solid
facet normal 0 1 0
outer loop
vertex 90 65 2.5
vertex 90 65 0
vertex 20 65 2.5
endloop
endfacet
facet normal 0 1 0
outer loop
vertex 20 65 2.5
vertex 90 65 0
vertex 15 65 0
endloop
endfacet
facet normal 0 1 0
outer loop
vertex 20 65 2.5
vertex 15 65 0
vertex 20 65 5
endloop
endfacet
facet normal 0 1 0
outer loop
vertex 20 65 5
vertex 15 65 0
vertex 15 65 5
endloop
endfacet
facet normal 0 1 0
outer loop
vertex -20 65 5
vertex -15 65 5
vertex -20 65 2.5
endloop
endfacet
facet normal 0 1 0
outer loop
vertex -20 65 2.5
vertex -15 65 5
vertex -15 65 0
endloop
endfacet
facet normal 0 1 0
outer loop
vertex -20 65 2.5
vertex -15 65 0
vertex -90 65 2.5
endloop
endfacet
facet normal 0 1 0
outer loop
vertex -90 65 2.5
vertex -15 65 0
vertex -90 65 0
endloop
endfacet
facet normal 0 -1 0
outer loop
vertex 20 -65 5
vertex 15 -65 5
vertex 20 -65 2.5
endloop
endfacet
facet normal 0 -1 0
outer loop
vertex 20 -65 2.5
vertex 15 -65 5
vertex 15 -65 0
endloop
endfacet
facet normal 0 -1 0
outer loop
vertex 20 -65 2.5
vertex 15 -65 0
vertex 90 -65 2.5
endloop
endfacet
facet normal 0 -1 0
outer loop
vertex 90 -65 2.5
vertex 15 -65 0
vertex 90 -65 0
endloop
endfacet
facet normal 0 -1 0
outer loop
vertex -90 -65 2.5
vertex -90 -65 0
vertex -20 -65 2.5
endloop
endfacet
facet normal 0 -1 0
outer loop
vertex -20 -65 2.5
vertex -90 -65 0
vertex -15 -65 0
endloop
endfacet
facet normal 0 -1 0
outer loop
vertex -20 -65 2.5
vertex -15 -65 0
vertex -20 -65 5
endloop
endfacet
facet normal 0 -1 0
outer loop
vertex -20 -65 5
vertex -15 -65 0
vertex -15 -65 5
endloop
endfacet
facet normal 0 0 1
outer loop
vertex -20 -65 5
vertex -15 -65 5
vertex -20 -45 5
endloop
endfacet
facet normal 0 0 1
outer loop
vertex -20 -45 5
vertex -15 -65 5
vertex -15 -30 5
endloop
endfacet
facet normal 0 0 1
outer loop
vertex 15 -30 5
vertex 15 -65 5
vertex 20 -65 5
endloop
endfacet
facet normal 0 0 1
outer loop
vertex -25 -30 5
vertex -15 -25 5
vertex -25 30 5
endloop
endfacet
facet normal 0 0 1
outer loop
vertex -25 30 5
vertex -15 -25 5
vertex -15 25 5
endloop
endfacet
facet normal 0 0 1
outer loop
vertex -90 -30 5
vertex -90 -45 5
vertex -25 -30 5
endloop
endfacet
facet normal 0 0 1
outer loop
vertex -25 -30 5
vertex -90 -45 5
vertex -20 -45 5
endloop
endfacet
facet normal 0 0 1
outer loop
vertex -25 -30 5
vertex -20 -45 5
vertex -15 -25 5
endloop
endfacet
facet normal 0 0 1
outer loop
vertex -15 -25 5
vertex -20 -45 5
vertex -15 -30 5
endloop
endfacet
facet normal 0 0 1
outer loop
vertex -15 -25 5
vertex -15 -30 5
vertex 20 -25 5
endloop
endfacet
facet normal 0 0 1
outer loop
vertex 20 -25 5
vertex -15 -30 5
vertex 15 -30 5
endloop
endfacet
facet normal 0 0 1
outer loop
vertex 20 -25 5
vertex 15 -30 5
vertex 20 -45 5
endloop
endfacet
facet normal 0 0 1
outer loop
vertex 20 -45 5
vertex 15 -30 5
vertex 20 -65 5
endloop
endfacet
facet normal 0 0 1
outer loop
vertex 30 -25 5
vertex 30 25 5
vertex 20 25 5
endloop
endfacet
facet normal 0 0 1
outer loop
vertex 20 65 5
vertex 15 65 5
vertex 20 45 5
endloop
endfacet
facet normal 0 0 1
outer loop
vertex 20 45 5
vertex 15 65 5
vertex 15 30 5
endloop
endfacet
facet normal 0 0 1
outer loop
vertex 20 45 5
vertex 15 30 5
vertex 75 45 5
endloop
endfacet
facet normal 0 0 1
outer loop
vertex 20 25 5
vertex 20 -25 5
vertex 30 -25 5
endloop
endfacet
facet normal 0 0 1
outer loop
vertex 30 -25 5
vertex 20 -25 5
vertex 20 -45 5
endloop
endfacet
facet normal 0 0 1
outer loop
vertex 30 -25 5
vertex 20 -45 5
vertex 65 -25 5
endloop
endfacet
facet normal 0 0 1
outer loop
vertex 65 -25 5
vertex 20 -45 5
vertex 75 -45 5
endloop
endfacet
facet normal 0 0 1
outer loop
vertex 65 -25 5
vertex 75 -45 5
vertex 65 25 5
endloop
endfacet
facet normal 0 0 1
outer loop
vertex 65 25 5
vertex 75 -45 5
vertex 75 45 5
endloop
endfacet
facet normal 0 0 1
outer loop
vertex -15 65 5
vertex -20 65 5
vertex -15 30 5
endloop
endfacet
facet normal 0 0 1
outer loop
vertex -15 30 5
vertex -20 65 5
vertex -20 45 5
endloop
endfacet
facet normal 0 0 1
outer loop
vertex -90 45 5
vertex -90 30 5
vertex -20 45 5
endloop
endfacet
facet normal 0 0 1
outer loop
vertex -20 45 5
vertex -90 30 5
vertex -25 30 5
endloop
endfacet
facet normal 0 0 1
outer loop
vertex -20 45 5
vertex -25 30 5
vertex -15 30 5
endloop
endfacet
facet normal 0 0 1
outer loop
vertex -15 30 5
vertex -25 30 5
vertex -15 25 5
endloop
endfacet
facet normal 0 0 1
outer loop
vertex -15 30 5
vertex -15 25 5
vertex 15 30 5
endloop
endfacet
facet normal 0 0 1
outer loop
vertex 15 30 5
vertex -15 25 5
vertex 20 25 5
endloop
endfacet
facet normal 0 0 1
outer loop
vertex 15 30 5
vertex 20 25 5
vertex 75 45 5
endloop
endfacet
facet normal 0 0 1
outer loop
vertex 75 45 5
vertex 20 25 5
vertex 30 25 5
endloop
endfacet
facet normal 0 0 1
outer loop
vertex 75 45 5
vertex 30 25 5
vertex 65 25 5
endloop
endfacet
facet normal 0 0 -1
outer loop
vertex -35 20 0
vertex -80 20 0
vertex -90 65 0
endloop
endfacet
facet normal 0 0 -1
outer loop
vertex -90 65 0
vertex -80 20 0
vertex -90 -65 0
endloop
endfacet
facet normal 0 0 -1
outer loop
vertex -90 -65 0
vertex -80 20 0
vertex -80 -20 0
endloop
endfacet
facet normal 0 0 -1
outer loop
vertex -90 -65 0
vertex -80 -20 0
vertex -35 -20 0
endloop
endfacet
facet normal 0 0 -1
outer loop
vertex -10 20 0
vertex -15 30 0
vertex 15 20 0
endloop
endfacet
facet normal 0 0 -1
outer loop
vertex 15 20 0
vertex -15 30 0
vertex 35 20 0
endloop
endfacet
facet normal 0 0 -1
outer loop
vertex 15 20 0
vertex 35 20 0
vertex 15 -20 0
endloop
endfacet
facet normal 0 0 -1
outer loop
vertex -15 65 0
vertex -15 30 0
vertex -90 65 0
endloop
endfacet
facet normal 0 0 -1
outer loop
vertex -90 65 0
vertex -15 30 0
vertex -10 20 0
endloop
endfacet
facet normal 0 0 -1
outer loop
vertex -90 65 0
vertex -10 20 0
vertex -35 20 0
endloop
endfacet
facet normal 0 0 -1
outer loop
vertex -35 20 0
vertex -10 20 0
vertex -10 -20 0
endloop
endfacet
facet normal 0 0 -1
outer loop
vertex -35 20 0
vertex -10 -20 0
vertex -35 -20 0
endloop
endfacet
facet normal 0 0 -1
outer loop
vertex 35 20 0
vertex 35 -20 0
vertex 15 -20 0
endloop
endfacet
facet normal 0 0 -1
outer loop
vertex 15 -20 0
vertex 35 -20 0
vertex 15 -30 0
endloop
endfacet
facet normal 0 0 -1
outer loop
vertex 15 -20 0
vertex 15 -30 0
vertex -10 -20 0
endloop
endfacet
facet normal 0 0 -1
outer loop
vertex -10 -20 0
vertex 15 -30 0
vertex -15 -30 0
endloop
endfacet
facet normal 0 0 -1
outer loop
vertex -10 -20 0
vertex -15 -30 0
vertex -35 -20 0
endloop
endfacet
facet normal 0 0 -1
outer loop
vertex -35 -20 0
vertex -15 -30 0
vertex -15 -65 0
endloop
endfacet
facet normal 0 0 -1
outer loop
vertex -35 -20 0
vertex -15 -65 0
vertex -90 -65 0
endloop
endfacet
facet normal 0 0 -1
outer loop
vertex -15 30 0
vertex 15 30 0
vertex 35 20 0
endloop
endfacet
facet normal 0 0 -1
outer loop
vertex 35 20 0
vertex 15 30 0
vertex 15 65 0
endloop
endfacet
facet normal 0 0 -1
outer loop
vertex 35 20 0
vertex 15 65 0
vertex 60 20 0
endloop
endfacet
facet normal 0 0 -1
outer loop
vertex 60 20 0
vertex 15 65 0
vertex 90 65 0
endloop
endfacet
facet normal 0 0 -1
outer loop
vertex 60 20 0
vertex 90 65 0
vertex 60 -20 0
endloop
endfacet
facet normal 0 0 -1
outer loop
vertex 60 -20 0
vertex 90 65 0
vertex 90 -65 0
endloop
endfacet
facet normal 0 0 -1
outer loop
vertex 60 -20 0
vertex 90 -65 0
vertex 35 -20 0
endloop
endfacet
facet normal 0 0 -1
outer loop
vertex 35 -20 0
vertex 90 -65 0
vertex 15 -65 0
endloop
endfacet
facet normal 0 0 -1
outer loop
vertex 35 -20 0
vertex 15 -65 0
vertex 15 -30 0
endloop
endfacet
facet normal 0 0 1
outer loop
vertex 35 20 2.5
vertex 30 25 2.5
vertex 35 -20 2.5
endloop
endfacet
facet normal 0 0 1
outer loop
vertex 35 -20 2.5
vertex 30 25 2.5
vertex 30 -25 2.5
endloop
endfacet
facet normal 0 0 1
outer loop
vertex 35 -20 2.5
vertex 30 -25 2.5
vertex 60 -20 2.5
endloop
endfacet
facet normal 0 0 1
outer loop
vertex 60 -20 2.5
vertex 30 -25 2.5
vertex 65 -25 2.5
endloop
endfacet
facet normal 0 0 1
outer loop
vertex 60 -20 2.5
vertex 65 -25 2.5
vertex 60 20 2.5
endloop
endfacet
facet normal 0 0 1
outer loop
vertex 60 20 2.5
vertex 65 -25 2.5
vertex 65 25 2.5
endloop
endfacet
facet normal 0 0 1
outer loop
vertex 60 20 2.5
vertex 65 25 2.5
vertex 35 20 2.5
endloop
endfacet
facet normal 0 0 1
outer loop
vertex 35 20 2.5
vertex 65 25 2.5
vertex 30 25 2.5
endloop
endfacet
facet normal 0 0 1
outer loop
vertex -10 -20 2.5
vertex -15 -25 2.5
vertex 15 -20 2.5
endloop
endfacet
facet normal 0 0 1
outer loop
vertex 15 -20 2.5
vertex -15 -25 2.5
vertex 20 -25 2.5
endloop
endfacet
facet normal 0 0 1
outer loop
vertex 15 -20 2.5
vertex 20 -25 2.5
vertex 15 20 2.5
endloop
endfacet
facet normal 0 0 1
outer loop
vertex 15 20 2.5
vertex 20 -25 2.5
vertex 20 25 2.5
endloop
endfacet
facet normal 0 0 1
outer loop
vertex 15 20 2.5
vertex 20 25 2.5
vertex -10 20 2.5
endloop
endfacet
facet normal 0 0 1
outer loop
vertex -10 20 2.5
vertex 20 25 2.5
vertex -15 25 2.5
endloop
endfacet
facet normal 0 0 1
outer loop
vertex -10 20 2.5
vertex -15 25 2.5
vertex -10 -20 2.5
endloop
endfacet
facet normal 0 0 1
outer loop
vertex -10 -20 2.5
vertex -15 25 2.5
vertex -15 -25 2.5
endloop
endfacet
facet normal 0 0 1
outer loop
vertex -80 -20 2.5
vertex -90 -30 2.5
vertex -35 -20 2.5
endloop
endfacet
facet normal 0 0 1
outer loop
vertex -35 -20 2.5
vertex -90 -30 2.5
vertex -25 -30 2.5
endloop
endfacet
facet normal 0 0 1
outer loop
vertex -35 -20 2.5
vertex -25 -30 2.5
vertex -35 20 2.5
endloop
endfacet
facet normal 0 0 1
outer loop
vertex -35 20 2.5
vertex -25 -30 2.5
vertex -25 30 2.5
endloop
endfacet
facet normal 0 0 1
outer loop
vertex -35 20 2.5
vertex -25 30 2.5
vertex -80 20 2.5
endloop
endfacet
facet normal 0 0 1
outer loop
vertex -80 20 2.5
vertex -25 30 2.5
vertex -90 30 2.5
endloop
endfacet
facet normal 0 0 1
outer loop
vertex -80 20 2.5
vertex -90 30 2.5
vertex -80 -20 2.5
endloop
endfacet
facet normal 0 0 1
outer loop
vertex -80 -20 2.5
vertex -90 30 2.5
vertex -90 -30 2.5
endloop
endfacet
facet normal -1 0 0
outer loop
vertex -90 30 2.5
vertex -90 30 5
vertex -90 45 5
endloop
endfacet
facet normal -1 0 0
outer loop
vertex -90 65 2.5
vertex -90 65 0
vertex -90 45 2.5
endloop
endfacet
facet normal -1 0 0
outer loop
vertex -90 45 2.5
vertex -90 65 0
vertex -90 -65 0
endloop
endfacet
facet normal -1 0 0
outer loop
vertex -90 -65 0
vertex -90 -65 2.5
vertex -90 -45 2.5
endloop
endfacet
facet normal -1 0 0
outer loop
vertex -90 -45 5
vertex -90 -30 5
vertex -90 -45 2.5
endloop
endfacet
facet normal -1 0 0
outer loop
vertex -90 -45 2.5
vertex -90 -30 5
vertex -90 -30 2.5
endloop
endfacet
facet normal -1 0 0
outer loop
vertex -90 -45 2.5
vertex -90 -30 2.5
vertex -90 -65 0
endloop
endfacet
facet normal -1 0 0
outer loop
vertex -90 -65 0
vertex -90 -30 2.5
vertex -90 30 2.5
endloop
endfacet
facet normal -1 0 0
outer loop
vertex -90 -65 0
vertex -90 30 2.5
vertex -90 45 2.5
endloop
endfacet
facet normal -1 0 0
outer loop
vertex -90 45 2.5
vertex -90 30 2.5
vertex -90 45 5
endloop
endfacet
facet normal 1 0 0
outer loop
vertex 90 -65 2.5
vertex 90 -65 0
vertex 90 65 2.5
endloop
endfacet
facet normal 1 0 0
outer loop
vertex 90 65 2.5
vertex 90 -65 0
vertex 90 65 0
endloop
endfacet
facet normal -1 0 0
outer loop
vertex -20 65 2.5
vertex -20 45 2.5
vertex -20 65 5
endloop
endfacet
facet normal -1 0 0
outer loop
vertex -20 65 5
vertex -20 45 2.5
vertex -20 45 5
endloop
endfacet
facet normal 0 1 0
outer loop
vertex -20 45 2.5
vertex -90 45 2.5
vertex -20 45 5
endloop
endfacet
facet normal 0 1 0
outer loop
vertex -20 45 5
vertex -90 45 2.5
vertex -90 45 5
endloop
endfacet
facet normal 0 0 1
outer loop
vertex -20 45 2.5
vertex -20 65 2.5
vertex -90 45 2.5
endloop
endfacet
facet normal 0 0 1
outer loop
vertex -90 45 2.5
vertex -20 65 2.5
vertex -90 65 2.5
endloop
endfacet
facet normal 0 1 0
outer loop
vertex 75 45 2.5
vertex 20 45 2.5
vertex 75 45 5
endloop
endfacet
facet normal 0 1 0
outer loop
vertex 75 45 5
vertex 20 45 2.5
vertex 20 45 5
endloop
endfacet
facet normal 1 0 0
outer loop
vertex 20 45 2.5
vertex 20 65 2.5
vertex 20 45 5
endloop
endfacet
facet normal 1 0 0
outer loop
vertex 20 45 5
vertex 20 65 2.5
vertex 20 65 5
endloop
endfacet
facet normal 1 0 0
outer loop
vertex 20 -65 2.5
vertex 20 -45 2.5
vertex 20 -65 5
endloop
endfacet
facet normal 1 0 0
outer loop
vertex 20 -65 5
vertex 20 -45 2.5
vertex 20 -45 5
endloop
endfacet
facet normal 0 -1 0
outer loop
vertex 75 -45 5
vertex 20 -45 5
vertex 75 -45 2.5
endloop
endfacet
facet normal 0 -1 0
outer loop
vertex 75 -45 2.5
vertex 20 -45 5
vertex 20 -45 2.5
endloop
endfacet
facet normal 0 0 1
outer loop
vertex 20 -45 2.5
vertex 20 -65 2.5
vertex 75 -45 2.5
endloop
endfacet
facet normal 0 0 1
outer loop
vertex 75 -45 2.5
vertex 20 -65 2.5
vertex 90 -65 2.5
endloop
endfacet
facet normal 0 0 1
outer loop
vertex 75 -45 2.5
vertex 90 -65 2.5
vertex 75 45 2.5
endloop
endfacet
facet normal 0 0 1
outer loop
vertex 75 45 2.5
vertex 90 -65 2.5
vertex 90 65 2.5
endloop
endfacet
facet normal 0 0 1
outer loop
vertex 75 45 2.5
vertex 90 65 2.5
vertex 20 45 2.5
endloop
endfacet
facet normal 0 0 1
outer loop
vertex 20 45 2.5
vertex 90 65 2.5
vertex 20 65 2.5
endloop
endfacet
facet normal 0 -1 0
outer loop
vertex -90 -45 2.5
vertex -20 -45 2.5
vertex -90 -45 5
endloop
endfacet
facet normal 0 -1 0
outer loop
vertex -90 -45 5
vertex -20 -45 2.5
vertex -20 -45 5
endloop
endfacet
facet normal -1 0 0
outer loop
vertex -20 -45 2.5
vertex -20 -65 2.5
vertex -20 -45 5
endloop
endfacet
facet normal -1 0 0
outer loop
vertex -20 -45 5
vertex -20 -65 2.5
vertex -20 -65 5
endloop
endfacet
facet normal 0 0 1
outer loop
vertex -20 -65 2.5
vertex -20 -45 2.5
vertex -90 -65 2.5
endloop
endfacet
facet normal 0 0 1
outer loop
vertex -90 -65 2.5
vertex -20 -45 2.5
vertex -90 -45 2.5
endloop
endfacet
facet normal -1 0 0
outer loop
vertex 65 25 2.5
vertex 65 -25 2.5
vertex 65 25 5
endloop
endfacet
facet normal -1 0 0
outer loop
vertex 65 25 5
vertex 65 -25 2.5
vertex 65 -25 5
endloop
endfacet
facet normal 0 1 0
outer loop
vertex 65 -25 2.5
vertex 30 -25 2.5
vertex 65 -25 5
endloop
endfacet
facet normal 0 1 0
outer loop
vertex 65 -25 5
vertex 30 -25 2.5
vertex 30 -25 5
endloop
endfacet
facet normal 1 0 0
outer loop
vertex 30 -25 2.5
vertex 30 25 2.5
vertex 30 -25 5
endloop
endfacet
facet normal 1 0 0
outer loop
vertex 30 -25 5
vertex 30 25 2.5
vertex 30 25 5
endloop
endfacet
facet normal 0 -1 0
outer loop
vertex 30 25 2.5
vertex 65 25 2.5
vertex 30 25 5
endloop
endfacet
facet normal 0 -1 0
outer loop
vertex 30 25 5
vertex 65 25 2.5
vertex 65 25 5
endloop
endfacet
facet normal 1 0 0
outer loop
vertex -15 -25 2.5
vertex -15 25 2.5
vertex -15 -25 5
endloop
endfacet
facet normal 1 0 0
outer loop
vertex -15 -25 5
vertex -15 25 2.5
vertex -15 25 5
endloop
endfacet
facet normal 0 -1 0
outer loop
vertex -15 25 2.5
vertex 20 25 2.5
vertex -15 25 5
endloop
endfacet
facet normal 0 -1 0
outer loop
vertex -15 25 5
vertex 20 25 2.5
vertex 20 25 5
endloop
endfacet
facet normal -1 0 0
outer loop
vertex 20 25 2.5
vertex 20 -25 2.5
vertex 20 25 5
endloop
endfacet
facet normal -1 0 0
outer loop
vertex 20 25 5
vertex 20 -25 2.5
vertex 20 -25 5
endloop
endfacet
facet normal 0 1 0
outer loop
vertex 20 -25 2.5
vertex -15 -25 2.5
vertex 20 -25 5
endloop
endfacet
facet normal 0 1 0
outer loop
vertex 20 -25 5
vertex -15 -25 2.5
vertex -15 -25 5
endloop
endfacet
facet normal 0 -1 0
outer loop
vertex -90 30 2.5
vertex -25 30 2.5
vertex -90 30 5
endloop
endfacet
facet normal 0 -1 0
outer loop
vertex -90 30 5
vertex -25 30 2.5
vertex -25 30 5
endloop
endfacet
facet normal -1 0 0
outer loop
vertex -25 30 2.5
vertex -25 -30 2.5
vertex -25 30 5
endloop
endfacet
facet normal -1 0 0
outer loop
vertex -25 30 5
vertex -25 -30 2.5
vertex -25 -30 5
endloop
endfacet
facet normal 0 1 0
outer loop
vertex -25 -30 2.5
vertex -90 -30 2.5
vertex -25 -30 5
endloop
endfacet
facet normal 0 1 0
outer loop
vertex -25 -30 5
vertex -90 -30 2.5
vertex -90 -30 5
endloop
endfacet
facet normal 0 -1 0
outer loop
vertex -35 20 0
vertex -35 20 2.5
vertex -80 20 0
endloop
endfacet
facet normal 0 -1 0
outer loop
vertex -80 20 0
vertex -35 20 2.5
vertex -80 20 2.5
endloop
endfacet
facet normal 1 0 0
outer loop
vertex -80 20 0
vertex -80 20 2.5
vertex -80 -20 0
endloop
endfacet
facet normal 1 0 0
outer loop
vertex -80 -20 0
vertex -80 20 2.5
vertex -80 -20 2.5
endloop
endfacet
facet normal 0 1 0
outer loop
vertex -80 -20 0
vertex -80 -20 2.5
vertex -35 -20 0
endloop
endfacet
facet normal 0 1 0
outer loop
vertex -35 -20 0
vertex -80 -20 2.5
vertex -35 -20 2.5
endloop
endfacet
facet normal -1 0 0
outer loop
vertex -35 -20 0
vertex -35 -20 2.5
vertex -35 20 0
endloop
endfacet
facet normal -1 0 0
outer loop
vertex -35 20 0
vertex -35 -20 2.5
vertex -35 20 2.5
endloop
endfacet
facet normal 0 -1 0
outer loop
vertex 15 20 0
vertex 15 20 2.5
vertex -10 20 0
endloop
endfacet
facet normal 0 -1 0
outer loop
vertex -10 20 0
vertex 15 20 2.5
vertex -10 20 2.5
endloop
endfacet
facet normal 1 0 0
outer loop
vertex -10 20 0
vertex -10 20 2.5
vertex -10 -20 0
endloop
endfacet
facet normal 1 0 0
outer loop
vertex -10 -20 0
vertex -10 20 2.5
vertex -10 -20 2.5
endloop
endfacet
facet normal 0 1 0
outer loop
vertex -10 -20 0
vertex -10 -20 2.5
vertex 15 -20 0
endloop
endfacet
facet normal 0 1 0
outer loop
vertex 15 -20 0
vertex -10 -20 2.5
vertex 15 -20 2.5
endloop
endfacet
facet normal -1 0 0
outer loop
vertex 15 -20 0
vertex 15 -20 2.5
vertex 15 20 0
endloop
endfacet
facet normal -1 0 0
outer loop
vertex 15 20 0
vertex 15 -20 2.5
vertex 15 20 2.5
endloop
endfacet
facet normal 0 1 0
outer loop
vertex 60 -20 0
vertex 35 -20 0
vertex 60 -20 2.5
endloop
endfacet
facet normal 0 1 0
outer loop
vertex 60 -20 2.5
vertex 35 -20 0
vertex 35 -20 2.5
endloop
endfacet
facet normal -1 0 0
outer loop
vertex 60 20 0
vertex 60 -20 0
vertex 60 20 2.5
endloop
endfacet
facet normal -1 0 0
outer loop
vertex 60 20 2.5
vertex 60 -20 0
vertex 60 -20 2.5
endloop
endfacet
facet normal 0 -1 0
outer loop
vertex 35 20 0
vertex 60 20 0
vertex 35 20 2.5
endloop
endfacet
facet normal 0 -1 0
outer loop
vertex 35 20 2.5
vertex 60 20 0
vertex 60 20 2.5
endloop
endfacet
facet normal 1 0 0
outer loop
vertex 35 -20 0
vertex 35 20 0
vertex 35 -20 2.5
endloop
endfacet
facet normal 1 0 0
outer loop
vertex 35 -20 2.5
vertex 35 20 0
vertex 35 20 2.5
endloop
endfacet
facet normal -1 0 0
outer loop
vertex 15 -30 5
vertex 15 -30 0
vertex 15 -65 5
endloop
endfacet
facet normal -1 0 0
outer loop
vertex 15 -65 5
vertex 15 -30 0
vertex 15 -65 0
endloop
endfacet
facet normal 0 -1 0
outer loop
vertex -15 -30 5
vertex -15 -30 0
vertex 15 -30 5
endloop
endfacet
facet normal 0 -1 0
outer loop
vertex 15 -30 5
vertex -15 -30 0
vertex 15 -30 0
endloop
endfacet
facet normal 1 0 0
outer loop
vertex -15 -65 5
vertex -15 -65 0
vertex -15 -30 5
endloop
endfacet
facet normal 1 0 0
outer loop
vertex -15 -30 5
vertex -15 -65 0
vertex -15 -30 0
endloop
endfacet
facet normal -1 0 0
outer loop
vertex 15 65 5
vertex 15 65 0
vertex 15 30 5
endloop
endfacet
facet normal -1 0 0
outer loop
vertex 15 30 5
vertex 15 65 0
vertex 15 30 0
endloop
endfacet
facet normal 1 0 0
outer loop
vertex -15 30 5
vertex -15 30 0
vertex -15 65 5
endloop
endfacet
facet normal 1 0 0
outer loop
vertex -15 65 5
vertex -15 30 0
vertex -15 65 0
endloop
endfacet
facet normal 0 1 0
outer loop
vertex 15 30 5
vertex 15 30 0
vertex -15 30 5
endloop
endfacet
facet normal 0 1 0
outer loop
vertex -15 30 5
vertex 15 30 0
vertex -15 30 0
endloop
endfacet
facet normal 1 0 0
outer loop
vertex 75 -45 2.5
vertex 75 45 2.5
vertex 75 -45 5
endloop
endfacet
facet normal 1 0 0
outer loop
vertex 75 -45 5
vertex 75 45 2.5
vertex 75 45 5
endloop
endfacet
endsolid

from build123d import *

# Parameters (mm, degrees)
SKETCH1_W               = 180
SKETCH1_H               = 130
BOSS_EXTRUDE1_DEPTH     = 5
SKETCH2_W               = 70
SKETCH2_H               = 20
CUT_EXTRUDE1_DEPTH      = 2.5
SKETCH3_W               = 65
SKETCH3_H               = 60
SKETCH3_W_2             = 35
SKETCH3_H_2             = 50
CUT_EXTRUDE2_DEPTH      = 2.5
SKETCH4_W               = 30
SKETCH4_H               = 35
SKETCH4_W_2             = 45
SKETCH4_H_2             = 40
SKETCH4_W_3             = 25
CUT_EXTRUDE3_DEPTH      = 2.5
CUT_EXTRUDE3_DEPTH_BACK = 3.5
SKETCH5_W               = 15
SKETCH5_H               = 90
CUT_EXTRUDE4_DEPTH      = 2.5


with BuildPart() as part:
    # Sketch1 → Boss-Extrude1 (new body)
    with BuildSketch(Plane.XY):
        Rectangle(SKETCH1_W, SKETCH1_H)
    extrude(amount=BOSS_EXTRUDE1_DEPTH)

    # Sketch2 → Cut-Extrude1 (cut)
    with BuildSketch(Plane.XY.offset(5)):
        with Locations((-55, 55)):
            Rectangle(SKETCH2_W, SKETCH2_H)
        with Locations((55, 55)):
            Rectangle(SKETCH2_W, SKETCH2_H)
        with Locations((55, -55)):
            Rectangle(SKETCH2_W, SKETCH2_H)
        with Locations((-55, -55)):
            Rectangle(SKETCH2_W, SKETCH2_H)
    extrude(amount=-CUT_EXTRUDE1_DEPTH, mode=Mode.SUBTRACT)

    # Sketch3 → Cut-Extrude2 (cut)
    with BuildSketch(Plane.XY.offset(5)):
        with Locations((-57.5, 0)):
            Rectangle(SKETCH3_W, SKETCH3_H)
        with Locations((2.5, 0)):
            Rectangle(SKETCH3_W_2, SKETCH3_H_2)
        with Locations((47.5, 0)):
            Rectangle(SKETCH3_W_2, SKETCH3_H_2)
    extrude(amount=-CUT_EXTRUDE2_DEPTH, mode=Mode.SUBTRACT)

    # Sketch4 → Cut-Extrude3 (cut, two sides)
    with BuildSketch(Plane.XY.offset(2.5)) as cut_extrude3_sk:
        with Locations((0, 47.5)):
            Rectangle(SKETCH4_W, SKETCH4_H)
        with Locations((0, -47.5)):
            Rectangle(SKETCH4_W, SKETCH4_H)
        with Locations((-57.5, 0)):
            Rectangle(SKETCH4_W_2, SKETCH4_H_2)
        with Locations((47.5, 0)):
            Rectangle(SKETCH4_W_3, SKETCH4_H_2)
        with Locations((2.5, 0)):
            Rectangle(SKETCH4_W_3, SKETCH4_H_2)
    extrude(amount=CUT_EXTRUDE3_DEPTH, mode=Mode.SUBTRACT)
    extrude(cut_extrude3_sk.sketch, amount=-CUT_EXTRUDE3_DEPTH_BACK, mode=Mode.SUBTRACT)

    # Sketch5 → Cut-Extrude4 (cut)
    with BuildSketch(Plane.XY.offset(5)):
        with Locations((82.5, 0)):
            Rectangle(SKETCH5_W, SKETCH5_H)
    extrude(amount=-CUT_EXTRUDE4_DEPTH, mode=Mode.SUBTRACT)


solid = part.part
